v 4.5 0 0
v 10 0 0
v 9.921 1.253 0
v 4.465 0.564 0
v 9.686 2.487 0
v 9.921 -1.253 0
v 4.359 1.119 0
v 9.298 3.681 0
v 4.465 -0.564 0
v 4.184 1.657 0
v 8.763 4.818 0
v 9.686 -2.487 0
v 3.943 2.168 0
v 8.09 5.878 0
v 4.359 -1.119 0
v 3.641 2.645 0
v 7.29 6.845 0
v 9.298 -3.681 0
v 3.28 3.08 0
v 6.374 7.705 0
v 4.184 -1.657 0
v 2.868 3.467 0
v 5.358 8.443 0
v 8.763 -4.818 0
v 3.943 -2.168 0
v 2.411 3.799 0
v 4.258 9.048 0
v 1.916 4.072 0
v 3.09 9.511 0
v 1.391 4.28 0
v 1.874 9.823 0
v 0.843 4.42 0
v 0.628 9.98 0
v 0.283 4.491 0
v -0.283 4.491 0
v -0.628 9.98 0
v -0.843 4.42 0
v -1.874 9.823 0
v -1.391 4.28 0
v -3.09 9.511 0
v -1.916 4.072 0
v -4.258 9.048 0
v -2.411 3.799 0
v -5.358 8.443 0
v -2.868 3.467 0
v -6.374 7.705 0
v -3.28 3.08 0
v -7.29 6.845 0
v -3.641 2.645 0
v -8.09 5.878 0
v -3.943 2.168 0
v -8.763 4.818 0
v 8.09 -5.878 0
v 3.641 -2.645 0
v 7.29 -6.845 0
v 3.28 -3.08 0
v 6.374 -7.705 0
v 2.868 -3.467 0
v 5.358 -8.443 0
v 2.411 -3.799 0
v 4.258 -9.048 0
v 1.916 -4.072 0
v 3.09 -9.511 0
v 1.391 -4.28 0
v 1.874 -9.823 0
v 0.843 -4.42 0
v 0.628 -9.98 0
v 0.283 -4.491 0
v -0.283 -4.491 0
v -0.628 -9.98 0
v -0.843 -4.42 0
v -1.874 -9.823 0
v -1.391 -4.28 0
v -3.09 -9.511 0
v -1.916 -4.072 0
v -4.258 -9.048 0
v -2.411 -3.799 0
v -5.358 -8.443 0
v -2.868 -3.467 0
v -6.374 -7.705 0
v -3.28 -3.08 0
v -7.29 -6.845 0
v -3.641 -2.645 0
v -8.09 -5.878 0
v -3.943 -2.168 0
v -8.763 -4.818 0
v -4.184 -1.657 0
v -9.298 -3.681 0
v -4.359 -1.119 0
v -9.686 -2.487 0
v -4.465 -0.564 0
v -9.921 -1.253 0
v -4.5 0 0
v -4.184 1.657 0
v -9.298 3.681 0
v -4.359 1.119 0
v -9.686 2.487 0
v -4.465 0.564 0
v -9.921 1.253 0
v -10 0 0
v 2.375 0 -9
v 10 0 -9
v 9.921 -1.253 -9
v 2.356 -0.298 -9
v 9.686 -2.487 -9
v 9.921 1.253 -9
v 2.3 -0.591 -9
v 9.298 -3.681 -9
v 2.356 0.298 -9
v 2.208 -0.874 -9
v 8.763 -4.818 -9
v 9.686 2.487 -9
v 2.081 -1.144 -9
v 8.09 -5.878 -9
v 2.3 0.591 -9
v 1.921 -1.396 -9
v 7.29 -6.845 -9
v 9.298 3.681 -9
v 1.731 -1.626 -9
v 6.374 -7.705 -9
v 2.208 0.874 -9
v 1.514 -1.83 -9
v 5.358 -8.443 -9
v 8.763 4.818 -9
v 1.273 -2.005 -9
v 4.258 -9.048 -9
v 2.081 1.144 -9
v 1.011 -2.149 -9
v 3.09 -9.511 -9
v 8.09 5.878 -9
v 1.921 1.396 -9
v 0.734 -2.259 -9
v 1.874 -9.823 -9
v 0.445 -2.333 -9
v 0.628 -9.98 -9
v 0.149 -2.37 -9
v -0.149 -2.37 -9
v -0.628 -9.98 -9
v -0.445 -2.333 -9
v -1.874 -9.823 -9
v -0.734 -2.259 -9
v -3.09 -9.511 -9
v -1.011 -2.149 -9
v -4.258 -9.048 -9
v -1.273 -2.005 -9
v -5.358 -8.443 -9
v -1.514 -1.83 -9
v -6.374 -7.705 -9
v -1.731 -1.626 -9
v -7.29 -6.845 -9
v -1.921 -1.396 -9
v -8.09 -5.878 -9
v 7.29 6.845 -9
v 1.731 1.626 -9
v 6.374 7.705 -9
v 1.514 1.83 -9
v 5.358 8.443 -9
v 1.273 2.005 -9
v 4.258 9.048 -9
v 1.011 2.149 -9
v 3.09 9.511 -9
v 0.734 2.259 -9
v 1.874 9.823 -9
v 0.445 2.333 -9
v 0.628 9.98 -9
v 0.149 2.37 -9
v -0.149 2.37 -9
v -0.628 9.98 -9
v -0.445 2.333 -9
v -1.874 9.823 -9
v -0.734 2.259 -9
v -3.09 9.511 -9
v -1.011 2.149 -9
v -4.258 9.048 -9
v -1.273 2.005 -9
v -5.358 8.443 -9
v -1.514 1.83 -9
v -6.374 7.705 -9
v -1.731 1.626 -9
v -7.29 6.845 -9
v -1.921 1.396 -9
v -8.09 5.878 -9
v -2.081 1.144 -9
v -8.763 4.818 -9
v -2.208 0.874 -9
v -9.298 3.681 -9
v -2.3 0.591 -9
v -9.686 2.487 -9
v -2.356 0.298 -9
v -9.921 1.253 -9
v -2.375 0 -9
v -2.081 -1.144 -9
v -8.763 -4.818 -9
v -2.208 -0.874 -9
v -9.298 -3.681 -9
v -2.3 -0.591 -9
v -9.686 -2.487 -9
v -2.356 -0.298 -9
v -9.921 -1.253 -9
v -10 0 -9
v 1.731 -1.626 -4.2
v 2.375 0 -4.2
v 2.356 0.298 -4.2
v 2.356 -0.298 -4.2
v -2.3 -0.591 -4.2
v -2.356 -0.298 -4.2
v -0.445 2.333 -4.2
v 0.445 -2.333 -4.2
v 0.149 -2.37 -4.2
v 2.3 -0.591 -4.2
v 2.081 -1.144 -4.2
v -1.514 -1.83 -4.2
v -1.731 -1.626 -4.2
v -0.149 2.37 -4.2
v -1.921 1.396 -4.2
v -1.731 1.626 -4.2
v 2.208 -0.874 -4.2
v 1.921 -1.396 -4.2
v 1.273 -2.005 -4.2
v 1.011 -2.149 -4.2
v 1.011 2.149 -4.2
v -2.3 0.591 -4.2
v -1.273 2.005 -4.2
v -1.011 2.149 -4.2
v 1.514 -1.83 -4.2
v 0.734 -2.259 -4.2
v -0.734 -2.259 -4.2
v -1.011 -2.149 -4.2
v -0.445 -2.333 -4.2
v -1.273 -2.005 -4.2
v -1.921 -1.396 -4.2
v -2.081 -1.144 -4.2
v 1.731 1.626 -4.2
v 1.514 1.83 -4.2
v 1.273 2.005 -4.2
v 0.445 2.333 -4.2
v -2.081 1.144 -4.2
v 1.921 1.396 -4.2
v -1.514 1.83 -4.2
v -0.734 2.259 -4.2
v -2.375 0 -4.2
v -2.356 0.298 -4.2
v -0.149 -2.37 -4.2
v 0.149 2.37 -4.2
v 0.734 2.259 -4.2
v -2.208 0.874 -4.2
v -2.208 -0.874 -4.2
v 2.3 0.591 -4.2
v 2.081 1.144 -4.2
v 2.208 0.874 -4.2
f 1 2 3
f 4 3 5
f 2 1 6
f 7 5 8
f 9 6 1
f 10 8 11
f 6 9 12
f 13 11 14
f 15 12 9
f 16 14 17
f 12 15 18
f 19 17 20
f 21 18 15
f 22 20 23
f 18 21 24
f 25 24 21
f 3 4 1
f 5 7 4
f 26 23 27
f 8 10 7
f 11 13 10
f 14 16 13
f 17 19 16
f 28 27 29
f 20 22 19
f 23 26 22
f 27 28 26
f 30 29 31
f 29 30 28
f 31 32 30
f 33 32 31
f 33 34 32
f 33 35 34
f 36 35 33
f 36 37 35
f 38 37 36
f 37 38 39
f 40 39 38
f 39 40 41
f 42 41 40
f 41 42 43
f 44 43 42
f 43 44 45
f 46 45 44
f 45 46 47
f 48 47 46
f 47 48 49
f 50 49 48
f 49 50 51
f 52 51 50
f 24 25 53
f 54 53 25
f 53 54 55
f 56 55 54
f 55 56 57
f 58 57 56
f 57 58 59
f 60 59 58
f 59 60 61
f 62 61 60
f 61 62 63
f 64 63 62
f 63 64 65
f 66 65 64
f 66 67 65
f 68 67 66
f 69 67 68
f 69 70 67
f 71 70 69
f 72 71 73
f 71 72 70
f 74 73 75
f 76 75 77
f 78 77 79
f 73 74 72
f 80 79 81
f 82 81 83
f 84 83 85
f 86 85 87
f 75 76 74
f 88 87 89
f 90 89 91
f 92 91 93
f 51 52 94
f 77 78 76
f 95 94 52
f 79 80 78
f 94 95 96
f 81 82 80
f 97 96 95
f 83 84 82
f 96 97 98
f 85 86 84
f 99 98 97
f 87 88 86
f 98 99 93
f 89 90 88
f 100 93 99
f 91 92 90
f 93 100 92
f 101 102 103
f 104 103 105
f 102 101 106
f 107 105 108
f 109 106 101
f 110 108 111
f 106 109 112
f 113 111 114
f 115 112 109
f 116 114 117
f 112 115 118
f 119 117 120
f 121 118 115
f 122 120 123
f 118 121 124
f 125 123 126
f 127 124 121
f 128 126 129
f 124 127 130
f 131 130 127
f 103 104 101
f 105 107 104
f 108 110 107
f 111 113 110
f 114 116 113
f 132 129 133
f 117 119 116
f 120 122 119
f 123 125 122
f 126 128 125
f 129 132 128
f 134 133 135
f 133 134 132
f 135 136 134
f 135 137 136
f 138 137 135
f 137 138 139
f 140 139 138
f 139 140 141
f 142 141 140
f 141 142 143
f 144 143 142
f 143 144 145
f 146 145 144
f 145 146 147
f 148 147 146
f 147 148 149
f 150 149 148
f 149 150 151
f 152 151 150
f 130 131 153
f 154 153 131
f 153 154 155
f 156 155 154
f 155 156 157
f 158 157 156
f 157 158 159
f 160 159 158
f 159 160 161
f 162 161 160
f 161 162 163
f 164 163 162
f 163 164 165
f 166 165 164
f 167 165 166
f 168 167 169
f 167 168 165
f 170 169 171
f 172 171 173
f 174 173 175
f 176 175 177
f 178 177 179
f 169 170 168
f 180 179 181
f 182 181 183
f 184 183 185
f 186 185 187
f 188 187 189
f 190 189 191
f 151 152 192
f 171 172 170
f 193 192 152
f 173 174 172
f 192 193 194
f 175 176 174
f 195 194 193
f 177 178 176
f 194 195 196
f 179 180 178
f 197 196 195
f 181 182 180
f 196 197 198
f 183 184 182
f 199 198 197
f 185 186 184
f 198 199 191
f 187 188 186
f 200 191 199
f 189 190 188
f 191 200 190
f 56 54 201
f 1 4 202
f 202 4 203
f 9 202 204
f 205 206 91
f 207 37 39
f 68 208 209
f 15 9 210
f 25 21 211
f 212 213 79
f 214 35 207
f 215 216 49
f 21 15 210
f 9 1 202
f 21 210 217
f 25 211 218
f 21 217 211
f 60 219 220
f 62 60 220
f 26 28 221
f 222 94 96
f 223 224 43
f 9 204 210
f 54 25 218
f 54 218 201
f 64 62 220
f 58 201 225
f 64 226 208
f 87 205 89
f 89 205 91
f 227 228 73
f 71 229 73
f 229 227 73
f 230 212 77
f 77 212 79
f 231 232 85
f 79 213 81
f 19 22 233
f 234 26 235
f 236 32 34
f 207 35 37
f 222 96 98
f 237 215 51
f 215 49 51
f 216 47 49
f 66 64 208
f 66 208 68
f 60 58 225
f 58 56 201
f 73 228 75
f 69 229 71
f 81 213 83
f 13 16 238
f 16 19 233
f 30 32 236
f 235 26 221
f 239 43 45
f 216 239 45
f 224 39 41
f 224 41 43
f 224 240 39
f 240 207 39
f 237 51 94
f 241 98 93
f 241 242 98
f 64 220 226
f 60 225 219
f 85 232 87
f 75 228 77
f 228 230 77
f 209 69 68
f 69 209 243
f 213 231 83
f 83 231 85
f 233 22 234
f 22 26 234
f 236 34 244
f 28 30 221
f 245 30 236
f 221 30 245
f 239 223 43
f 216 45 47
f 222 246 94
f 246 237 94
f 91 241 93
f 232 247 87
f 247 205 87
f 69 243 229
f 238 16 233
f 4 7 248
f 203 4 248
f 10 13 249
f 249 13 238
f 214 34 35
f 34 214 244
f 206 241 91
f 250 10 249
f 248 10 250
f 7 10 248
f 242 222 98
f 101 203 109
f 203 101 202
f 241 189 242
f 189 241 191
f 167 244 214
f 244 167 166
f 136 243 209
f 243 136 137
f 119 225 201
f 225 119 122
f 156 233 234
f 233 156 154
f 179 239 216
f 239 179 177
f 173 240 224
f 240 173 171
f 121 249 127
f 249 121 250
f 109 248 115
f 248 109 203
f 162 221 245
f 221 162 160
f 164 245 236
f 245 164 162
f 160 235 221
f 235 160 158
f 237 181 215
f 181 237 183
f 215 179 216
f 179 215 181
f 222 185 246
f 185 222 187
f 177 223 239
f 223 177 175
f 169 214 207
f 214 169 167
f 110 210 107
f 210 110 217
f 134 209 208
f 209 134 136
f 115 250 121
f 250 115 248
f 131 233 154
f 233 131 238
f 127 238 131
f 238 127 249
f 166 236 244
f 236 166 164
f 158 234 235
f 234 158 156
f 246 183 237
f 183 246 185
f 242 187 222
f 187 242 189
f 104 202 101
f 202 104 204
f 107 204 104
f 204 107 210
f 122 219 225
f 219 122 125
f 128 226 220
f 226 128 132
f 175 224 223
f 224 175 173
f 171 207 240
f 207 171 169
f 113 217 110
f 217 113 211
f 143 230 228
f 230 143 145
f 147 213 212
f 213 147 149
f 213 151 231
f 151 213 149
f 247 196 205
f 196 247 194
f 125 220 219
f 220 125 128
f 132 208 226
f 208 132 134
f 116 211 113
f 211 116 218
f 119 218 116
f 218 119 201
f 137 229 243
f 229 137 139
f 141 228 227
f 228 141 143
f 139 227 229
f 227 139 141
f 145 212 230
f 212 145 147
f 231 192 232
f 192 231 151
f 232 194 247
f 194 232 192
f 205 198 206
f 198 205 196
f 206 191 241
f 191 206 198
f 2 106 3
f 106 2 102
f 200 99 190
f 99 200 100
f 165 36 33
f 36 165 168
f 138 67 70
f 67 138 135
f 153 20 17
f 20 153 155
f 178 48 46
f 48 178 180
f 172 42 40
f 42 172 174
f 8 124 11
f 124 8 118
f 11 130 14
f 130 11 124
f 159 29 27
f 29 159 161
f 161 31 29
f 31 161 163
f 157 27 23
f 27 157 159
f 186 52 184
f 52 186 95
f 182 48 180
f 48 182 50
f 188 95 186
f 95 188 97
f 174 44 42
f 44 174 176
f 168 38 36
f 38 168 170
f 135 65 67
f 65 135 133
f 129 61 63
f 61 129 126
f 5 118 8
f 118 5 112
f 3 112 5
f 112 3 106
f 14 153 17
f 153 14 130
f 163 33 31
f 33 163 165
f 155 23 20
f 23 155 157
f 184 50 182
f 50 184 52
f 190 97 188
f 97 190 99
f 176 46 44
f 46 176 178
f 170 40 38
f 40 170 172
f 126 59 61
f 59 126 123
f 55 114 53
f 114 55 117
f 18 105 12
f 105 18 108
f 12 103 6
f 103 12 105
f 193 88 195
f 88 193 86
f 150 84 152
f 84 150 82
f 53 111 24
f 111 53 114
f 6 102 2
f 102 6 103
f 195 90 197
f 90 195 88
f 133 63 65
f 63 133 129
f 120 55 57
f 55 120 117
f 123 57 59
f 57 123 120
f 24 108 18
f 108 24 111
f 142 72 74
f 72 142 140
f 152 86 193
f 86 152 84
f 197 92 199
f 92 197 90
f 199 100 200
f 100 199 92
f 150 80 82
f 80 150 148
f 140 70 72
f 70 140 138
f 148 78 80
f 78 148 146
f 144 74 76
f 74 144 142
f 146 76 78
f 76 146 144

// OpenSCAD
$fn = 50;


difference() {
	union() {
		translate(v = [0, 0, -9.0000000000]) {
			cylinder(h = 9, r = 10.0000000000);
		}
		cylinder(h = 0, r = 20.0000000000);
	}
	union() {
		translate(v = [0, 0, 0]) {
			rotate(a = [0, 0, 0]) {
				difference() {
					union() {
						#translate(v = [0, 0, -9.0000000000]) {
							cylinder(h = 9, r = 2.2500000000);
						}
						#translate(v = [0, 0, -4.2000000000]) {
							cylinder(h = 4.2000000000, r1 = 2.3750000000, r2 = 4.5000000000);
						}
						#translate(v = [0, 0, -9.0000000000]) {
							cylinder(h = 9, r = 2.3750000000);
						}
						#translate(v = [0, 0, -9.0000000000]) {
							cylinder(h = 9, r = 2.2500000000);
						}
					}
					union();
				}
			}
		}
	}
}
